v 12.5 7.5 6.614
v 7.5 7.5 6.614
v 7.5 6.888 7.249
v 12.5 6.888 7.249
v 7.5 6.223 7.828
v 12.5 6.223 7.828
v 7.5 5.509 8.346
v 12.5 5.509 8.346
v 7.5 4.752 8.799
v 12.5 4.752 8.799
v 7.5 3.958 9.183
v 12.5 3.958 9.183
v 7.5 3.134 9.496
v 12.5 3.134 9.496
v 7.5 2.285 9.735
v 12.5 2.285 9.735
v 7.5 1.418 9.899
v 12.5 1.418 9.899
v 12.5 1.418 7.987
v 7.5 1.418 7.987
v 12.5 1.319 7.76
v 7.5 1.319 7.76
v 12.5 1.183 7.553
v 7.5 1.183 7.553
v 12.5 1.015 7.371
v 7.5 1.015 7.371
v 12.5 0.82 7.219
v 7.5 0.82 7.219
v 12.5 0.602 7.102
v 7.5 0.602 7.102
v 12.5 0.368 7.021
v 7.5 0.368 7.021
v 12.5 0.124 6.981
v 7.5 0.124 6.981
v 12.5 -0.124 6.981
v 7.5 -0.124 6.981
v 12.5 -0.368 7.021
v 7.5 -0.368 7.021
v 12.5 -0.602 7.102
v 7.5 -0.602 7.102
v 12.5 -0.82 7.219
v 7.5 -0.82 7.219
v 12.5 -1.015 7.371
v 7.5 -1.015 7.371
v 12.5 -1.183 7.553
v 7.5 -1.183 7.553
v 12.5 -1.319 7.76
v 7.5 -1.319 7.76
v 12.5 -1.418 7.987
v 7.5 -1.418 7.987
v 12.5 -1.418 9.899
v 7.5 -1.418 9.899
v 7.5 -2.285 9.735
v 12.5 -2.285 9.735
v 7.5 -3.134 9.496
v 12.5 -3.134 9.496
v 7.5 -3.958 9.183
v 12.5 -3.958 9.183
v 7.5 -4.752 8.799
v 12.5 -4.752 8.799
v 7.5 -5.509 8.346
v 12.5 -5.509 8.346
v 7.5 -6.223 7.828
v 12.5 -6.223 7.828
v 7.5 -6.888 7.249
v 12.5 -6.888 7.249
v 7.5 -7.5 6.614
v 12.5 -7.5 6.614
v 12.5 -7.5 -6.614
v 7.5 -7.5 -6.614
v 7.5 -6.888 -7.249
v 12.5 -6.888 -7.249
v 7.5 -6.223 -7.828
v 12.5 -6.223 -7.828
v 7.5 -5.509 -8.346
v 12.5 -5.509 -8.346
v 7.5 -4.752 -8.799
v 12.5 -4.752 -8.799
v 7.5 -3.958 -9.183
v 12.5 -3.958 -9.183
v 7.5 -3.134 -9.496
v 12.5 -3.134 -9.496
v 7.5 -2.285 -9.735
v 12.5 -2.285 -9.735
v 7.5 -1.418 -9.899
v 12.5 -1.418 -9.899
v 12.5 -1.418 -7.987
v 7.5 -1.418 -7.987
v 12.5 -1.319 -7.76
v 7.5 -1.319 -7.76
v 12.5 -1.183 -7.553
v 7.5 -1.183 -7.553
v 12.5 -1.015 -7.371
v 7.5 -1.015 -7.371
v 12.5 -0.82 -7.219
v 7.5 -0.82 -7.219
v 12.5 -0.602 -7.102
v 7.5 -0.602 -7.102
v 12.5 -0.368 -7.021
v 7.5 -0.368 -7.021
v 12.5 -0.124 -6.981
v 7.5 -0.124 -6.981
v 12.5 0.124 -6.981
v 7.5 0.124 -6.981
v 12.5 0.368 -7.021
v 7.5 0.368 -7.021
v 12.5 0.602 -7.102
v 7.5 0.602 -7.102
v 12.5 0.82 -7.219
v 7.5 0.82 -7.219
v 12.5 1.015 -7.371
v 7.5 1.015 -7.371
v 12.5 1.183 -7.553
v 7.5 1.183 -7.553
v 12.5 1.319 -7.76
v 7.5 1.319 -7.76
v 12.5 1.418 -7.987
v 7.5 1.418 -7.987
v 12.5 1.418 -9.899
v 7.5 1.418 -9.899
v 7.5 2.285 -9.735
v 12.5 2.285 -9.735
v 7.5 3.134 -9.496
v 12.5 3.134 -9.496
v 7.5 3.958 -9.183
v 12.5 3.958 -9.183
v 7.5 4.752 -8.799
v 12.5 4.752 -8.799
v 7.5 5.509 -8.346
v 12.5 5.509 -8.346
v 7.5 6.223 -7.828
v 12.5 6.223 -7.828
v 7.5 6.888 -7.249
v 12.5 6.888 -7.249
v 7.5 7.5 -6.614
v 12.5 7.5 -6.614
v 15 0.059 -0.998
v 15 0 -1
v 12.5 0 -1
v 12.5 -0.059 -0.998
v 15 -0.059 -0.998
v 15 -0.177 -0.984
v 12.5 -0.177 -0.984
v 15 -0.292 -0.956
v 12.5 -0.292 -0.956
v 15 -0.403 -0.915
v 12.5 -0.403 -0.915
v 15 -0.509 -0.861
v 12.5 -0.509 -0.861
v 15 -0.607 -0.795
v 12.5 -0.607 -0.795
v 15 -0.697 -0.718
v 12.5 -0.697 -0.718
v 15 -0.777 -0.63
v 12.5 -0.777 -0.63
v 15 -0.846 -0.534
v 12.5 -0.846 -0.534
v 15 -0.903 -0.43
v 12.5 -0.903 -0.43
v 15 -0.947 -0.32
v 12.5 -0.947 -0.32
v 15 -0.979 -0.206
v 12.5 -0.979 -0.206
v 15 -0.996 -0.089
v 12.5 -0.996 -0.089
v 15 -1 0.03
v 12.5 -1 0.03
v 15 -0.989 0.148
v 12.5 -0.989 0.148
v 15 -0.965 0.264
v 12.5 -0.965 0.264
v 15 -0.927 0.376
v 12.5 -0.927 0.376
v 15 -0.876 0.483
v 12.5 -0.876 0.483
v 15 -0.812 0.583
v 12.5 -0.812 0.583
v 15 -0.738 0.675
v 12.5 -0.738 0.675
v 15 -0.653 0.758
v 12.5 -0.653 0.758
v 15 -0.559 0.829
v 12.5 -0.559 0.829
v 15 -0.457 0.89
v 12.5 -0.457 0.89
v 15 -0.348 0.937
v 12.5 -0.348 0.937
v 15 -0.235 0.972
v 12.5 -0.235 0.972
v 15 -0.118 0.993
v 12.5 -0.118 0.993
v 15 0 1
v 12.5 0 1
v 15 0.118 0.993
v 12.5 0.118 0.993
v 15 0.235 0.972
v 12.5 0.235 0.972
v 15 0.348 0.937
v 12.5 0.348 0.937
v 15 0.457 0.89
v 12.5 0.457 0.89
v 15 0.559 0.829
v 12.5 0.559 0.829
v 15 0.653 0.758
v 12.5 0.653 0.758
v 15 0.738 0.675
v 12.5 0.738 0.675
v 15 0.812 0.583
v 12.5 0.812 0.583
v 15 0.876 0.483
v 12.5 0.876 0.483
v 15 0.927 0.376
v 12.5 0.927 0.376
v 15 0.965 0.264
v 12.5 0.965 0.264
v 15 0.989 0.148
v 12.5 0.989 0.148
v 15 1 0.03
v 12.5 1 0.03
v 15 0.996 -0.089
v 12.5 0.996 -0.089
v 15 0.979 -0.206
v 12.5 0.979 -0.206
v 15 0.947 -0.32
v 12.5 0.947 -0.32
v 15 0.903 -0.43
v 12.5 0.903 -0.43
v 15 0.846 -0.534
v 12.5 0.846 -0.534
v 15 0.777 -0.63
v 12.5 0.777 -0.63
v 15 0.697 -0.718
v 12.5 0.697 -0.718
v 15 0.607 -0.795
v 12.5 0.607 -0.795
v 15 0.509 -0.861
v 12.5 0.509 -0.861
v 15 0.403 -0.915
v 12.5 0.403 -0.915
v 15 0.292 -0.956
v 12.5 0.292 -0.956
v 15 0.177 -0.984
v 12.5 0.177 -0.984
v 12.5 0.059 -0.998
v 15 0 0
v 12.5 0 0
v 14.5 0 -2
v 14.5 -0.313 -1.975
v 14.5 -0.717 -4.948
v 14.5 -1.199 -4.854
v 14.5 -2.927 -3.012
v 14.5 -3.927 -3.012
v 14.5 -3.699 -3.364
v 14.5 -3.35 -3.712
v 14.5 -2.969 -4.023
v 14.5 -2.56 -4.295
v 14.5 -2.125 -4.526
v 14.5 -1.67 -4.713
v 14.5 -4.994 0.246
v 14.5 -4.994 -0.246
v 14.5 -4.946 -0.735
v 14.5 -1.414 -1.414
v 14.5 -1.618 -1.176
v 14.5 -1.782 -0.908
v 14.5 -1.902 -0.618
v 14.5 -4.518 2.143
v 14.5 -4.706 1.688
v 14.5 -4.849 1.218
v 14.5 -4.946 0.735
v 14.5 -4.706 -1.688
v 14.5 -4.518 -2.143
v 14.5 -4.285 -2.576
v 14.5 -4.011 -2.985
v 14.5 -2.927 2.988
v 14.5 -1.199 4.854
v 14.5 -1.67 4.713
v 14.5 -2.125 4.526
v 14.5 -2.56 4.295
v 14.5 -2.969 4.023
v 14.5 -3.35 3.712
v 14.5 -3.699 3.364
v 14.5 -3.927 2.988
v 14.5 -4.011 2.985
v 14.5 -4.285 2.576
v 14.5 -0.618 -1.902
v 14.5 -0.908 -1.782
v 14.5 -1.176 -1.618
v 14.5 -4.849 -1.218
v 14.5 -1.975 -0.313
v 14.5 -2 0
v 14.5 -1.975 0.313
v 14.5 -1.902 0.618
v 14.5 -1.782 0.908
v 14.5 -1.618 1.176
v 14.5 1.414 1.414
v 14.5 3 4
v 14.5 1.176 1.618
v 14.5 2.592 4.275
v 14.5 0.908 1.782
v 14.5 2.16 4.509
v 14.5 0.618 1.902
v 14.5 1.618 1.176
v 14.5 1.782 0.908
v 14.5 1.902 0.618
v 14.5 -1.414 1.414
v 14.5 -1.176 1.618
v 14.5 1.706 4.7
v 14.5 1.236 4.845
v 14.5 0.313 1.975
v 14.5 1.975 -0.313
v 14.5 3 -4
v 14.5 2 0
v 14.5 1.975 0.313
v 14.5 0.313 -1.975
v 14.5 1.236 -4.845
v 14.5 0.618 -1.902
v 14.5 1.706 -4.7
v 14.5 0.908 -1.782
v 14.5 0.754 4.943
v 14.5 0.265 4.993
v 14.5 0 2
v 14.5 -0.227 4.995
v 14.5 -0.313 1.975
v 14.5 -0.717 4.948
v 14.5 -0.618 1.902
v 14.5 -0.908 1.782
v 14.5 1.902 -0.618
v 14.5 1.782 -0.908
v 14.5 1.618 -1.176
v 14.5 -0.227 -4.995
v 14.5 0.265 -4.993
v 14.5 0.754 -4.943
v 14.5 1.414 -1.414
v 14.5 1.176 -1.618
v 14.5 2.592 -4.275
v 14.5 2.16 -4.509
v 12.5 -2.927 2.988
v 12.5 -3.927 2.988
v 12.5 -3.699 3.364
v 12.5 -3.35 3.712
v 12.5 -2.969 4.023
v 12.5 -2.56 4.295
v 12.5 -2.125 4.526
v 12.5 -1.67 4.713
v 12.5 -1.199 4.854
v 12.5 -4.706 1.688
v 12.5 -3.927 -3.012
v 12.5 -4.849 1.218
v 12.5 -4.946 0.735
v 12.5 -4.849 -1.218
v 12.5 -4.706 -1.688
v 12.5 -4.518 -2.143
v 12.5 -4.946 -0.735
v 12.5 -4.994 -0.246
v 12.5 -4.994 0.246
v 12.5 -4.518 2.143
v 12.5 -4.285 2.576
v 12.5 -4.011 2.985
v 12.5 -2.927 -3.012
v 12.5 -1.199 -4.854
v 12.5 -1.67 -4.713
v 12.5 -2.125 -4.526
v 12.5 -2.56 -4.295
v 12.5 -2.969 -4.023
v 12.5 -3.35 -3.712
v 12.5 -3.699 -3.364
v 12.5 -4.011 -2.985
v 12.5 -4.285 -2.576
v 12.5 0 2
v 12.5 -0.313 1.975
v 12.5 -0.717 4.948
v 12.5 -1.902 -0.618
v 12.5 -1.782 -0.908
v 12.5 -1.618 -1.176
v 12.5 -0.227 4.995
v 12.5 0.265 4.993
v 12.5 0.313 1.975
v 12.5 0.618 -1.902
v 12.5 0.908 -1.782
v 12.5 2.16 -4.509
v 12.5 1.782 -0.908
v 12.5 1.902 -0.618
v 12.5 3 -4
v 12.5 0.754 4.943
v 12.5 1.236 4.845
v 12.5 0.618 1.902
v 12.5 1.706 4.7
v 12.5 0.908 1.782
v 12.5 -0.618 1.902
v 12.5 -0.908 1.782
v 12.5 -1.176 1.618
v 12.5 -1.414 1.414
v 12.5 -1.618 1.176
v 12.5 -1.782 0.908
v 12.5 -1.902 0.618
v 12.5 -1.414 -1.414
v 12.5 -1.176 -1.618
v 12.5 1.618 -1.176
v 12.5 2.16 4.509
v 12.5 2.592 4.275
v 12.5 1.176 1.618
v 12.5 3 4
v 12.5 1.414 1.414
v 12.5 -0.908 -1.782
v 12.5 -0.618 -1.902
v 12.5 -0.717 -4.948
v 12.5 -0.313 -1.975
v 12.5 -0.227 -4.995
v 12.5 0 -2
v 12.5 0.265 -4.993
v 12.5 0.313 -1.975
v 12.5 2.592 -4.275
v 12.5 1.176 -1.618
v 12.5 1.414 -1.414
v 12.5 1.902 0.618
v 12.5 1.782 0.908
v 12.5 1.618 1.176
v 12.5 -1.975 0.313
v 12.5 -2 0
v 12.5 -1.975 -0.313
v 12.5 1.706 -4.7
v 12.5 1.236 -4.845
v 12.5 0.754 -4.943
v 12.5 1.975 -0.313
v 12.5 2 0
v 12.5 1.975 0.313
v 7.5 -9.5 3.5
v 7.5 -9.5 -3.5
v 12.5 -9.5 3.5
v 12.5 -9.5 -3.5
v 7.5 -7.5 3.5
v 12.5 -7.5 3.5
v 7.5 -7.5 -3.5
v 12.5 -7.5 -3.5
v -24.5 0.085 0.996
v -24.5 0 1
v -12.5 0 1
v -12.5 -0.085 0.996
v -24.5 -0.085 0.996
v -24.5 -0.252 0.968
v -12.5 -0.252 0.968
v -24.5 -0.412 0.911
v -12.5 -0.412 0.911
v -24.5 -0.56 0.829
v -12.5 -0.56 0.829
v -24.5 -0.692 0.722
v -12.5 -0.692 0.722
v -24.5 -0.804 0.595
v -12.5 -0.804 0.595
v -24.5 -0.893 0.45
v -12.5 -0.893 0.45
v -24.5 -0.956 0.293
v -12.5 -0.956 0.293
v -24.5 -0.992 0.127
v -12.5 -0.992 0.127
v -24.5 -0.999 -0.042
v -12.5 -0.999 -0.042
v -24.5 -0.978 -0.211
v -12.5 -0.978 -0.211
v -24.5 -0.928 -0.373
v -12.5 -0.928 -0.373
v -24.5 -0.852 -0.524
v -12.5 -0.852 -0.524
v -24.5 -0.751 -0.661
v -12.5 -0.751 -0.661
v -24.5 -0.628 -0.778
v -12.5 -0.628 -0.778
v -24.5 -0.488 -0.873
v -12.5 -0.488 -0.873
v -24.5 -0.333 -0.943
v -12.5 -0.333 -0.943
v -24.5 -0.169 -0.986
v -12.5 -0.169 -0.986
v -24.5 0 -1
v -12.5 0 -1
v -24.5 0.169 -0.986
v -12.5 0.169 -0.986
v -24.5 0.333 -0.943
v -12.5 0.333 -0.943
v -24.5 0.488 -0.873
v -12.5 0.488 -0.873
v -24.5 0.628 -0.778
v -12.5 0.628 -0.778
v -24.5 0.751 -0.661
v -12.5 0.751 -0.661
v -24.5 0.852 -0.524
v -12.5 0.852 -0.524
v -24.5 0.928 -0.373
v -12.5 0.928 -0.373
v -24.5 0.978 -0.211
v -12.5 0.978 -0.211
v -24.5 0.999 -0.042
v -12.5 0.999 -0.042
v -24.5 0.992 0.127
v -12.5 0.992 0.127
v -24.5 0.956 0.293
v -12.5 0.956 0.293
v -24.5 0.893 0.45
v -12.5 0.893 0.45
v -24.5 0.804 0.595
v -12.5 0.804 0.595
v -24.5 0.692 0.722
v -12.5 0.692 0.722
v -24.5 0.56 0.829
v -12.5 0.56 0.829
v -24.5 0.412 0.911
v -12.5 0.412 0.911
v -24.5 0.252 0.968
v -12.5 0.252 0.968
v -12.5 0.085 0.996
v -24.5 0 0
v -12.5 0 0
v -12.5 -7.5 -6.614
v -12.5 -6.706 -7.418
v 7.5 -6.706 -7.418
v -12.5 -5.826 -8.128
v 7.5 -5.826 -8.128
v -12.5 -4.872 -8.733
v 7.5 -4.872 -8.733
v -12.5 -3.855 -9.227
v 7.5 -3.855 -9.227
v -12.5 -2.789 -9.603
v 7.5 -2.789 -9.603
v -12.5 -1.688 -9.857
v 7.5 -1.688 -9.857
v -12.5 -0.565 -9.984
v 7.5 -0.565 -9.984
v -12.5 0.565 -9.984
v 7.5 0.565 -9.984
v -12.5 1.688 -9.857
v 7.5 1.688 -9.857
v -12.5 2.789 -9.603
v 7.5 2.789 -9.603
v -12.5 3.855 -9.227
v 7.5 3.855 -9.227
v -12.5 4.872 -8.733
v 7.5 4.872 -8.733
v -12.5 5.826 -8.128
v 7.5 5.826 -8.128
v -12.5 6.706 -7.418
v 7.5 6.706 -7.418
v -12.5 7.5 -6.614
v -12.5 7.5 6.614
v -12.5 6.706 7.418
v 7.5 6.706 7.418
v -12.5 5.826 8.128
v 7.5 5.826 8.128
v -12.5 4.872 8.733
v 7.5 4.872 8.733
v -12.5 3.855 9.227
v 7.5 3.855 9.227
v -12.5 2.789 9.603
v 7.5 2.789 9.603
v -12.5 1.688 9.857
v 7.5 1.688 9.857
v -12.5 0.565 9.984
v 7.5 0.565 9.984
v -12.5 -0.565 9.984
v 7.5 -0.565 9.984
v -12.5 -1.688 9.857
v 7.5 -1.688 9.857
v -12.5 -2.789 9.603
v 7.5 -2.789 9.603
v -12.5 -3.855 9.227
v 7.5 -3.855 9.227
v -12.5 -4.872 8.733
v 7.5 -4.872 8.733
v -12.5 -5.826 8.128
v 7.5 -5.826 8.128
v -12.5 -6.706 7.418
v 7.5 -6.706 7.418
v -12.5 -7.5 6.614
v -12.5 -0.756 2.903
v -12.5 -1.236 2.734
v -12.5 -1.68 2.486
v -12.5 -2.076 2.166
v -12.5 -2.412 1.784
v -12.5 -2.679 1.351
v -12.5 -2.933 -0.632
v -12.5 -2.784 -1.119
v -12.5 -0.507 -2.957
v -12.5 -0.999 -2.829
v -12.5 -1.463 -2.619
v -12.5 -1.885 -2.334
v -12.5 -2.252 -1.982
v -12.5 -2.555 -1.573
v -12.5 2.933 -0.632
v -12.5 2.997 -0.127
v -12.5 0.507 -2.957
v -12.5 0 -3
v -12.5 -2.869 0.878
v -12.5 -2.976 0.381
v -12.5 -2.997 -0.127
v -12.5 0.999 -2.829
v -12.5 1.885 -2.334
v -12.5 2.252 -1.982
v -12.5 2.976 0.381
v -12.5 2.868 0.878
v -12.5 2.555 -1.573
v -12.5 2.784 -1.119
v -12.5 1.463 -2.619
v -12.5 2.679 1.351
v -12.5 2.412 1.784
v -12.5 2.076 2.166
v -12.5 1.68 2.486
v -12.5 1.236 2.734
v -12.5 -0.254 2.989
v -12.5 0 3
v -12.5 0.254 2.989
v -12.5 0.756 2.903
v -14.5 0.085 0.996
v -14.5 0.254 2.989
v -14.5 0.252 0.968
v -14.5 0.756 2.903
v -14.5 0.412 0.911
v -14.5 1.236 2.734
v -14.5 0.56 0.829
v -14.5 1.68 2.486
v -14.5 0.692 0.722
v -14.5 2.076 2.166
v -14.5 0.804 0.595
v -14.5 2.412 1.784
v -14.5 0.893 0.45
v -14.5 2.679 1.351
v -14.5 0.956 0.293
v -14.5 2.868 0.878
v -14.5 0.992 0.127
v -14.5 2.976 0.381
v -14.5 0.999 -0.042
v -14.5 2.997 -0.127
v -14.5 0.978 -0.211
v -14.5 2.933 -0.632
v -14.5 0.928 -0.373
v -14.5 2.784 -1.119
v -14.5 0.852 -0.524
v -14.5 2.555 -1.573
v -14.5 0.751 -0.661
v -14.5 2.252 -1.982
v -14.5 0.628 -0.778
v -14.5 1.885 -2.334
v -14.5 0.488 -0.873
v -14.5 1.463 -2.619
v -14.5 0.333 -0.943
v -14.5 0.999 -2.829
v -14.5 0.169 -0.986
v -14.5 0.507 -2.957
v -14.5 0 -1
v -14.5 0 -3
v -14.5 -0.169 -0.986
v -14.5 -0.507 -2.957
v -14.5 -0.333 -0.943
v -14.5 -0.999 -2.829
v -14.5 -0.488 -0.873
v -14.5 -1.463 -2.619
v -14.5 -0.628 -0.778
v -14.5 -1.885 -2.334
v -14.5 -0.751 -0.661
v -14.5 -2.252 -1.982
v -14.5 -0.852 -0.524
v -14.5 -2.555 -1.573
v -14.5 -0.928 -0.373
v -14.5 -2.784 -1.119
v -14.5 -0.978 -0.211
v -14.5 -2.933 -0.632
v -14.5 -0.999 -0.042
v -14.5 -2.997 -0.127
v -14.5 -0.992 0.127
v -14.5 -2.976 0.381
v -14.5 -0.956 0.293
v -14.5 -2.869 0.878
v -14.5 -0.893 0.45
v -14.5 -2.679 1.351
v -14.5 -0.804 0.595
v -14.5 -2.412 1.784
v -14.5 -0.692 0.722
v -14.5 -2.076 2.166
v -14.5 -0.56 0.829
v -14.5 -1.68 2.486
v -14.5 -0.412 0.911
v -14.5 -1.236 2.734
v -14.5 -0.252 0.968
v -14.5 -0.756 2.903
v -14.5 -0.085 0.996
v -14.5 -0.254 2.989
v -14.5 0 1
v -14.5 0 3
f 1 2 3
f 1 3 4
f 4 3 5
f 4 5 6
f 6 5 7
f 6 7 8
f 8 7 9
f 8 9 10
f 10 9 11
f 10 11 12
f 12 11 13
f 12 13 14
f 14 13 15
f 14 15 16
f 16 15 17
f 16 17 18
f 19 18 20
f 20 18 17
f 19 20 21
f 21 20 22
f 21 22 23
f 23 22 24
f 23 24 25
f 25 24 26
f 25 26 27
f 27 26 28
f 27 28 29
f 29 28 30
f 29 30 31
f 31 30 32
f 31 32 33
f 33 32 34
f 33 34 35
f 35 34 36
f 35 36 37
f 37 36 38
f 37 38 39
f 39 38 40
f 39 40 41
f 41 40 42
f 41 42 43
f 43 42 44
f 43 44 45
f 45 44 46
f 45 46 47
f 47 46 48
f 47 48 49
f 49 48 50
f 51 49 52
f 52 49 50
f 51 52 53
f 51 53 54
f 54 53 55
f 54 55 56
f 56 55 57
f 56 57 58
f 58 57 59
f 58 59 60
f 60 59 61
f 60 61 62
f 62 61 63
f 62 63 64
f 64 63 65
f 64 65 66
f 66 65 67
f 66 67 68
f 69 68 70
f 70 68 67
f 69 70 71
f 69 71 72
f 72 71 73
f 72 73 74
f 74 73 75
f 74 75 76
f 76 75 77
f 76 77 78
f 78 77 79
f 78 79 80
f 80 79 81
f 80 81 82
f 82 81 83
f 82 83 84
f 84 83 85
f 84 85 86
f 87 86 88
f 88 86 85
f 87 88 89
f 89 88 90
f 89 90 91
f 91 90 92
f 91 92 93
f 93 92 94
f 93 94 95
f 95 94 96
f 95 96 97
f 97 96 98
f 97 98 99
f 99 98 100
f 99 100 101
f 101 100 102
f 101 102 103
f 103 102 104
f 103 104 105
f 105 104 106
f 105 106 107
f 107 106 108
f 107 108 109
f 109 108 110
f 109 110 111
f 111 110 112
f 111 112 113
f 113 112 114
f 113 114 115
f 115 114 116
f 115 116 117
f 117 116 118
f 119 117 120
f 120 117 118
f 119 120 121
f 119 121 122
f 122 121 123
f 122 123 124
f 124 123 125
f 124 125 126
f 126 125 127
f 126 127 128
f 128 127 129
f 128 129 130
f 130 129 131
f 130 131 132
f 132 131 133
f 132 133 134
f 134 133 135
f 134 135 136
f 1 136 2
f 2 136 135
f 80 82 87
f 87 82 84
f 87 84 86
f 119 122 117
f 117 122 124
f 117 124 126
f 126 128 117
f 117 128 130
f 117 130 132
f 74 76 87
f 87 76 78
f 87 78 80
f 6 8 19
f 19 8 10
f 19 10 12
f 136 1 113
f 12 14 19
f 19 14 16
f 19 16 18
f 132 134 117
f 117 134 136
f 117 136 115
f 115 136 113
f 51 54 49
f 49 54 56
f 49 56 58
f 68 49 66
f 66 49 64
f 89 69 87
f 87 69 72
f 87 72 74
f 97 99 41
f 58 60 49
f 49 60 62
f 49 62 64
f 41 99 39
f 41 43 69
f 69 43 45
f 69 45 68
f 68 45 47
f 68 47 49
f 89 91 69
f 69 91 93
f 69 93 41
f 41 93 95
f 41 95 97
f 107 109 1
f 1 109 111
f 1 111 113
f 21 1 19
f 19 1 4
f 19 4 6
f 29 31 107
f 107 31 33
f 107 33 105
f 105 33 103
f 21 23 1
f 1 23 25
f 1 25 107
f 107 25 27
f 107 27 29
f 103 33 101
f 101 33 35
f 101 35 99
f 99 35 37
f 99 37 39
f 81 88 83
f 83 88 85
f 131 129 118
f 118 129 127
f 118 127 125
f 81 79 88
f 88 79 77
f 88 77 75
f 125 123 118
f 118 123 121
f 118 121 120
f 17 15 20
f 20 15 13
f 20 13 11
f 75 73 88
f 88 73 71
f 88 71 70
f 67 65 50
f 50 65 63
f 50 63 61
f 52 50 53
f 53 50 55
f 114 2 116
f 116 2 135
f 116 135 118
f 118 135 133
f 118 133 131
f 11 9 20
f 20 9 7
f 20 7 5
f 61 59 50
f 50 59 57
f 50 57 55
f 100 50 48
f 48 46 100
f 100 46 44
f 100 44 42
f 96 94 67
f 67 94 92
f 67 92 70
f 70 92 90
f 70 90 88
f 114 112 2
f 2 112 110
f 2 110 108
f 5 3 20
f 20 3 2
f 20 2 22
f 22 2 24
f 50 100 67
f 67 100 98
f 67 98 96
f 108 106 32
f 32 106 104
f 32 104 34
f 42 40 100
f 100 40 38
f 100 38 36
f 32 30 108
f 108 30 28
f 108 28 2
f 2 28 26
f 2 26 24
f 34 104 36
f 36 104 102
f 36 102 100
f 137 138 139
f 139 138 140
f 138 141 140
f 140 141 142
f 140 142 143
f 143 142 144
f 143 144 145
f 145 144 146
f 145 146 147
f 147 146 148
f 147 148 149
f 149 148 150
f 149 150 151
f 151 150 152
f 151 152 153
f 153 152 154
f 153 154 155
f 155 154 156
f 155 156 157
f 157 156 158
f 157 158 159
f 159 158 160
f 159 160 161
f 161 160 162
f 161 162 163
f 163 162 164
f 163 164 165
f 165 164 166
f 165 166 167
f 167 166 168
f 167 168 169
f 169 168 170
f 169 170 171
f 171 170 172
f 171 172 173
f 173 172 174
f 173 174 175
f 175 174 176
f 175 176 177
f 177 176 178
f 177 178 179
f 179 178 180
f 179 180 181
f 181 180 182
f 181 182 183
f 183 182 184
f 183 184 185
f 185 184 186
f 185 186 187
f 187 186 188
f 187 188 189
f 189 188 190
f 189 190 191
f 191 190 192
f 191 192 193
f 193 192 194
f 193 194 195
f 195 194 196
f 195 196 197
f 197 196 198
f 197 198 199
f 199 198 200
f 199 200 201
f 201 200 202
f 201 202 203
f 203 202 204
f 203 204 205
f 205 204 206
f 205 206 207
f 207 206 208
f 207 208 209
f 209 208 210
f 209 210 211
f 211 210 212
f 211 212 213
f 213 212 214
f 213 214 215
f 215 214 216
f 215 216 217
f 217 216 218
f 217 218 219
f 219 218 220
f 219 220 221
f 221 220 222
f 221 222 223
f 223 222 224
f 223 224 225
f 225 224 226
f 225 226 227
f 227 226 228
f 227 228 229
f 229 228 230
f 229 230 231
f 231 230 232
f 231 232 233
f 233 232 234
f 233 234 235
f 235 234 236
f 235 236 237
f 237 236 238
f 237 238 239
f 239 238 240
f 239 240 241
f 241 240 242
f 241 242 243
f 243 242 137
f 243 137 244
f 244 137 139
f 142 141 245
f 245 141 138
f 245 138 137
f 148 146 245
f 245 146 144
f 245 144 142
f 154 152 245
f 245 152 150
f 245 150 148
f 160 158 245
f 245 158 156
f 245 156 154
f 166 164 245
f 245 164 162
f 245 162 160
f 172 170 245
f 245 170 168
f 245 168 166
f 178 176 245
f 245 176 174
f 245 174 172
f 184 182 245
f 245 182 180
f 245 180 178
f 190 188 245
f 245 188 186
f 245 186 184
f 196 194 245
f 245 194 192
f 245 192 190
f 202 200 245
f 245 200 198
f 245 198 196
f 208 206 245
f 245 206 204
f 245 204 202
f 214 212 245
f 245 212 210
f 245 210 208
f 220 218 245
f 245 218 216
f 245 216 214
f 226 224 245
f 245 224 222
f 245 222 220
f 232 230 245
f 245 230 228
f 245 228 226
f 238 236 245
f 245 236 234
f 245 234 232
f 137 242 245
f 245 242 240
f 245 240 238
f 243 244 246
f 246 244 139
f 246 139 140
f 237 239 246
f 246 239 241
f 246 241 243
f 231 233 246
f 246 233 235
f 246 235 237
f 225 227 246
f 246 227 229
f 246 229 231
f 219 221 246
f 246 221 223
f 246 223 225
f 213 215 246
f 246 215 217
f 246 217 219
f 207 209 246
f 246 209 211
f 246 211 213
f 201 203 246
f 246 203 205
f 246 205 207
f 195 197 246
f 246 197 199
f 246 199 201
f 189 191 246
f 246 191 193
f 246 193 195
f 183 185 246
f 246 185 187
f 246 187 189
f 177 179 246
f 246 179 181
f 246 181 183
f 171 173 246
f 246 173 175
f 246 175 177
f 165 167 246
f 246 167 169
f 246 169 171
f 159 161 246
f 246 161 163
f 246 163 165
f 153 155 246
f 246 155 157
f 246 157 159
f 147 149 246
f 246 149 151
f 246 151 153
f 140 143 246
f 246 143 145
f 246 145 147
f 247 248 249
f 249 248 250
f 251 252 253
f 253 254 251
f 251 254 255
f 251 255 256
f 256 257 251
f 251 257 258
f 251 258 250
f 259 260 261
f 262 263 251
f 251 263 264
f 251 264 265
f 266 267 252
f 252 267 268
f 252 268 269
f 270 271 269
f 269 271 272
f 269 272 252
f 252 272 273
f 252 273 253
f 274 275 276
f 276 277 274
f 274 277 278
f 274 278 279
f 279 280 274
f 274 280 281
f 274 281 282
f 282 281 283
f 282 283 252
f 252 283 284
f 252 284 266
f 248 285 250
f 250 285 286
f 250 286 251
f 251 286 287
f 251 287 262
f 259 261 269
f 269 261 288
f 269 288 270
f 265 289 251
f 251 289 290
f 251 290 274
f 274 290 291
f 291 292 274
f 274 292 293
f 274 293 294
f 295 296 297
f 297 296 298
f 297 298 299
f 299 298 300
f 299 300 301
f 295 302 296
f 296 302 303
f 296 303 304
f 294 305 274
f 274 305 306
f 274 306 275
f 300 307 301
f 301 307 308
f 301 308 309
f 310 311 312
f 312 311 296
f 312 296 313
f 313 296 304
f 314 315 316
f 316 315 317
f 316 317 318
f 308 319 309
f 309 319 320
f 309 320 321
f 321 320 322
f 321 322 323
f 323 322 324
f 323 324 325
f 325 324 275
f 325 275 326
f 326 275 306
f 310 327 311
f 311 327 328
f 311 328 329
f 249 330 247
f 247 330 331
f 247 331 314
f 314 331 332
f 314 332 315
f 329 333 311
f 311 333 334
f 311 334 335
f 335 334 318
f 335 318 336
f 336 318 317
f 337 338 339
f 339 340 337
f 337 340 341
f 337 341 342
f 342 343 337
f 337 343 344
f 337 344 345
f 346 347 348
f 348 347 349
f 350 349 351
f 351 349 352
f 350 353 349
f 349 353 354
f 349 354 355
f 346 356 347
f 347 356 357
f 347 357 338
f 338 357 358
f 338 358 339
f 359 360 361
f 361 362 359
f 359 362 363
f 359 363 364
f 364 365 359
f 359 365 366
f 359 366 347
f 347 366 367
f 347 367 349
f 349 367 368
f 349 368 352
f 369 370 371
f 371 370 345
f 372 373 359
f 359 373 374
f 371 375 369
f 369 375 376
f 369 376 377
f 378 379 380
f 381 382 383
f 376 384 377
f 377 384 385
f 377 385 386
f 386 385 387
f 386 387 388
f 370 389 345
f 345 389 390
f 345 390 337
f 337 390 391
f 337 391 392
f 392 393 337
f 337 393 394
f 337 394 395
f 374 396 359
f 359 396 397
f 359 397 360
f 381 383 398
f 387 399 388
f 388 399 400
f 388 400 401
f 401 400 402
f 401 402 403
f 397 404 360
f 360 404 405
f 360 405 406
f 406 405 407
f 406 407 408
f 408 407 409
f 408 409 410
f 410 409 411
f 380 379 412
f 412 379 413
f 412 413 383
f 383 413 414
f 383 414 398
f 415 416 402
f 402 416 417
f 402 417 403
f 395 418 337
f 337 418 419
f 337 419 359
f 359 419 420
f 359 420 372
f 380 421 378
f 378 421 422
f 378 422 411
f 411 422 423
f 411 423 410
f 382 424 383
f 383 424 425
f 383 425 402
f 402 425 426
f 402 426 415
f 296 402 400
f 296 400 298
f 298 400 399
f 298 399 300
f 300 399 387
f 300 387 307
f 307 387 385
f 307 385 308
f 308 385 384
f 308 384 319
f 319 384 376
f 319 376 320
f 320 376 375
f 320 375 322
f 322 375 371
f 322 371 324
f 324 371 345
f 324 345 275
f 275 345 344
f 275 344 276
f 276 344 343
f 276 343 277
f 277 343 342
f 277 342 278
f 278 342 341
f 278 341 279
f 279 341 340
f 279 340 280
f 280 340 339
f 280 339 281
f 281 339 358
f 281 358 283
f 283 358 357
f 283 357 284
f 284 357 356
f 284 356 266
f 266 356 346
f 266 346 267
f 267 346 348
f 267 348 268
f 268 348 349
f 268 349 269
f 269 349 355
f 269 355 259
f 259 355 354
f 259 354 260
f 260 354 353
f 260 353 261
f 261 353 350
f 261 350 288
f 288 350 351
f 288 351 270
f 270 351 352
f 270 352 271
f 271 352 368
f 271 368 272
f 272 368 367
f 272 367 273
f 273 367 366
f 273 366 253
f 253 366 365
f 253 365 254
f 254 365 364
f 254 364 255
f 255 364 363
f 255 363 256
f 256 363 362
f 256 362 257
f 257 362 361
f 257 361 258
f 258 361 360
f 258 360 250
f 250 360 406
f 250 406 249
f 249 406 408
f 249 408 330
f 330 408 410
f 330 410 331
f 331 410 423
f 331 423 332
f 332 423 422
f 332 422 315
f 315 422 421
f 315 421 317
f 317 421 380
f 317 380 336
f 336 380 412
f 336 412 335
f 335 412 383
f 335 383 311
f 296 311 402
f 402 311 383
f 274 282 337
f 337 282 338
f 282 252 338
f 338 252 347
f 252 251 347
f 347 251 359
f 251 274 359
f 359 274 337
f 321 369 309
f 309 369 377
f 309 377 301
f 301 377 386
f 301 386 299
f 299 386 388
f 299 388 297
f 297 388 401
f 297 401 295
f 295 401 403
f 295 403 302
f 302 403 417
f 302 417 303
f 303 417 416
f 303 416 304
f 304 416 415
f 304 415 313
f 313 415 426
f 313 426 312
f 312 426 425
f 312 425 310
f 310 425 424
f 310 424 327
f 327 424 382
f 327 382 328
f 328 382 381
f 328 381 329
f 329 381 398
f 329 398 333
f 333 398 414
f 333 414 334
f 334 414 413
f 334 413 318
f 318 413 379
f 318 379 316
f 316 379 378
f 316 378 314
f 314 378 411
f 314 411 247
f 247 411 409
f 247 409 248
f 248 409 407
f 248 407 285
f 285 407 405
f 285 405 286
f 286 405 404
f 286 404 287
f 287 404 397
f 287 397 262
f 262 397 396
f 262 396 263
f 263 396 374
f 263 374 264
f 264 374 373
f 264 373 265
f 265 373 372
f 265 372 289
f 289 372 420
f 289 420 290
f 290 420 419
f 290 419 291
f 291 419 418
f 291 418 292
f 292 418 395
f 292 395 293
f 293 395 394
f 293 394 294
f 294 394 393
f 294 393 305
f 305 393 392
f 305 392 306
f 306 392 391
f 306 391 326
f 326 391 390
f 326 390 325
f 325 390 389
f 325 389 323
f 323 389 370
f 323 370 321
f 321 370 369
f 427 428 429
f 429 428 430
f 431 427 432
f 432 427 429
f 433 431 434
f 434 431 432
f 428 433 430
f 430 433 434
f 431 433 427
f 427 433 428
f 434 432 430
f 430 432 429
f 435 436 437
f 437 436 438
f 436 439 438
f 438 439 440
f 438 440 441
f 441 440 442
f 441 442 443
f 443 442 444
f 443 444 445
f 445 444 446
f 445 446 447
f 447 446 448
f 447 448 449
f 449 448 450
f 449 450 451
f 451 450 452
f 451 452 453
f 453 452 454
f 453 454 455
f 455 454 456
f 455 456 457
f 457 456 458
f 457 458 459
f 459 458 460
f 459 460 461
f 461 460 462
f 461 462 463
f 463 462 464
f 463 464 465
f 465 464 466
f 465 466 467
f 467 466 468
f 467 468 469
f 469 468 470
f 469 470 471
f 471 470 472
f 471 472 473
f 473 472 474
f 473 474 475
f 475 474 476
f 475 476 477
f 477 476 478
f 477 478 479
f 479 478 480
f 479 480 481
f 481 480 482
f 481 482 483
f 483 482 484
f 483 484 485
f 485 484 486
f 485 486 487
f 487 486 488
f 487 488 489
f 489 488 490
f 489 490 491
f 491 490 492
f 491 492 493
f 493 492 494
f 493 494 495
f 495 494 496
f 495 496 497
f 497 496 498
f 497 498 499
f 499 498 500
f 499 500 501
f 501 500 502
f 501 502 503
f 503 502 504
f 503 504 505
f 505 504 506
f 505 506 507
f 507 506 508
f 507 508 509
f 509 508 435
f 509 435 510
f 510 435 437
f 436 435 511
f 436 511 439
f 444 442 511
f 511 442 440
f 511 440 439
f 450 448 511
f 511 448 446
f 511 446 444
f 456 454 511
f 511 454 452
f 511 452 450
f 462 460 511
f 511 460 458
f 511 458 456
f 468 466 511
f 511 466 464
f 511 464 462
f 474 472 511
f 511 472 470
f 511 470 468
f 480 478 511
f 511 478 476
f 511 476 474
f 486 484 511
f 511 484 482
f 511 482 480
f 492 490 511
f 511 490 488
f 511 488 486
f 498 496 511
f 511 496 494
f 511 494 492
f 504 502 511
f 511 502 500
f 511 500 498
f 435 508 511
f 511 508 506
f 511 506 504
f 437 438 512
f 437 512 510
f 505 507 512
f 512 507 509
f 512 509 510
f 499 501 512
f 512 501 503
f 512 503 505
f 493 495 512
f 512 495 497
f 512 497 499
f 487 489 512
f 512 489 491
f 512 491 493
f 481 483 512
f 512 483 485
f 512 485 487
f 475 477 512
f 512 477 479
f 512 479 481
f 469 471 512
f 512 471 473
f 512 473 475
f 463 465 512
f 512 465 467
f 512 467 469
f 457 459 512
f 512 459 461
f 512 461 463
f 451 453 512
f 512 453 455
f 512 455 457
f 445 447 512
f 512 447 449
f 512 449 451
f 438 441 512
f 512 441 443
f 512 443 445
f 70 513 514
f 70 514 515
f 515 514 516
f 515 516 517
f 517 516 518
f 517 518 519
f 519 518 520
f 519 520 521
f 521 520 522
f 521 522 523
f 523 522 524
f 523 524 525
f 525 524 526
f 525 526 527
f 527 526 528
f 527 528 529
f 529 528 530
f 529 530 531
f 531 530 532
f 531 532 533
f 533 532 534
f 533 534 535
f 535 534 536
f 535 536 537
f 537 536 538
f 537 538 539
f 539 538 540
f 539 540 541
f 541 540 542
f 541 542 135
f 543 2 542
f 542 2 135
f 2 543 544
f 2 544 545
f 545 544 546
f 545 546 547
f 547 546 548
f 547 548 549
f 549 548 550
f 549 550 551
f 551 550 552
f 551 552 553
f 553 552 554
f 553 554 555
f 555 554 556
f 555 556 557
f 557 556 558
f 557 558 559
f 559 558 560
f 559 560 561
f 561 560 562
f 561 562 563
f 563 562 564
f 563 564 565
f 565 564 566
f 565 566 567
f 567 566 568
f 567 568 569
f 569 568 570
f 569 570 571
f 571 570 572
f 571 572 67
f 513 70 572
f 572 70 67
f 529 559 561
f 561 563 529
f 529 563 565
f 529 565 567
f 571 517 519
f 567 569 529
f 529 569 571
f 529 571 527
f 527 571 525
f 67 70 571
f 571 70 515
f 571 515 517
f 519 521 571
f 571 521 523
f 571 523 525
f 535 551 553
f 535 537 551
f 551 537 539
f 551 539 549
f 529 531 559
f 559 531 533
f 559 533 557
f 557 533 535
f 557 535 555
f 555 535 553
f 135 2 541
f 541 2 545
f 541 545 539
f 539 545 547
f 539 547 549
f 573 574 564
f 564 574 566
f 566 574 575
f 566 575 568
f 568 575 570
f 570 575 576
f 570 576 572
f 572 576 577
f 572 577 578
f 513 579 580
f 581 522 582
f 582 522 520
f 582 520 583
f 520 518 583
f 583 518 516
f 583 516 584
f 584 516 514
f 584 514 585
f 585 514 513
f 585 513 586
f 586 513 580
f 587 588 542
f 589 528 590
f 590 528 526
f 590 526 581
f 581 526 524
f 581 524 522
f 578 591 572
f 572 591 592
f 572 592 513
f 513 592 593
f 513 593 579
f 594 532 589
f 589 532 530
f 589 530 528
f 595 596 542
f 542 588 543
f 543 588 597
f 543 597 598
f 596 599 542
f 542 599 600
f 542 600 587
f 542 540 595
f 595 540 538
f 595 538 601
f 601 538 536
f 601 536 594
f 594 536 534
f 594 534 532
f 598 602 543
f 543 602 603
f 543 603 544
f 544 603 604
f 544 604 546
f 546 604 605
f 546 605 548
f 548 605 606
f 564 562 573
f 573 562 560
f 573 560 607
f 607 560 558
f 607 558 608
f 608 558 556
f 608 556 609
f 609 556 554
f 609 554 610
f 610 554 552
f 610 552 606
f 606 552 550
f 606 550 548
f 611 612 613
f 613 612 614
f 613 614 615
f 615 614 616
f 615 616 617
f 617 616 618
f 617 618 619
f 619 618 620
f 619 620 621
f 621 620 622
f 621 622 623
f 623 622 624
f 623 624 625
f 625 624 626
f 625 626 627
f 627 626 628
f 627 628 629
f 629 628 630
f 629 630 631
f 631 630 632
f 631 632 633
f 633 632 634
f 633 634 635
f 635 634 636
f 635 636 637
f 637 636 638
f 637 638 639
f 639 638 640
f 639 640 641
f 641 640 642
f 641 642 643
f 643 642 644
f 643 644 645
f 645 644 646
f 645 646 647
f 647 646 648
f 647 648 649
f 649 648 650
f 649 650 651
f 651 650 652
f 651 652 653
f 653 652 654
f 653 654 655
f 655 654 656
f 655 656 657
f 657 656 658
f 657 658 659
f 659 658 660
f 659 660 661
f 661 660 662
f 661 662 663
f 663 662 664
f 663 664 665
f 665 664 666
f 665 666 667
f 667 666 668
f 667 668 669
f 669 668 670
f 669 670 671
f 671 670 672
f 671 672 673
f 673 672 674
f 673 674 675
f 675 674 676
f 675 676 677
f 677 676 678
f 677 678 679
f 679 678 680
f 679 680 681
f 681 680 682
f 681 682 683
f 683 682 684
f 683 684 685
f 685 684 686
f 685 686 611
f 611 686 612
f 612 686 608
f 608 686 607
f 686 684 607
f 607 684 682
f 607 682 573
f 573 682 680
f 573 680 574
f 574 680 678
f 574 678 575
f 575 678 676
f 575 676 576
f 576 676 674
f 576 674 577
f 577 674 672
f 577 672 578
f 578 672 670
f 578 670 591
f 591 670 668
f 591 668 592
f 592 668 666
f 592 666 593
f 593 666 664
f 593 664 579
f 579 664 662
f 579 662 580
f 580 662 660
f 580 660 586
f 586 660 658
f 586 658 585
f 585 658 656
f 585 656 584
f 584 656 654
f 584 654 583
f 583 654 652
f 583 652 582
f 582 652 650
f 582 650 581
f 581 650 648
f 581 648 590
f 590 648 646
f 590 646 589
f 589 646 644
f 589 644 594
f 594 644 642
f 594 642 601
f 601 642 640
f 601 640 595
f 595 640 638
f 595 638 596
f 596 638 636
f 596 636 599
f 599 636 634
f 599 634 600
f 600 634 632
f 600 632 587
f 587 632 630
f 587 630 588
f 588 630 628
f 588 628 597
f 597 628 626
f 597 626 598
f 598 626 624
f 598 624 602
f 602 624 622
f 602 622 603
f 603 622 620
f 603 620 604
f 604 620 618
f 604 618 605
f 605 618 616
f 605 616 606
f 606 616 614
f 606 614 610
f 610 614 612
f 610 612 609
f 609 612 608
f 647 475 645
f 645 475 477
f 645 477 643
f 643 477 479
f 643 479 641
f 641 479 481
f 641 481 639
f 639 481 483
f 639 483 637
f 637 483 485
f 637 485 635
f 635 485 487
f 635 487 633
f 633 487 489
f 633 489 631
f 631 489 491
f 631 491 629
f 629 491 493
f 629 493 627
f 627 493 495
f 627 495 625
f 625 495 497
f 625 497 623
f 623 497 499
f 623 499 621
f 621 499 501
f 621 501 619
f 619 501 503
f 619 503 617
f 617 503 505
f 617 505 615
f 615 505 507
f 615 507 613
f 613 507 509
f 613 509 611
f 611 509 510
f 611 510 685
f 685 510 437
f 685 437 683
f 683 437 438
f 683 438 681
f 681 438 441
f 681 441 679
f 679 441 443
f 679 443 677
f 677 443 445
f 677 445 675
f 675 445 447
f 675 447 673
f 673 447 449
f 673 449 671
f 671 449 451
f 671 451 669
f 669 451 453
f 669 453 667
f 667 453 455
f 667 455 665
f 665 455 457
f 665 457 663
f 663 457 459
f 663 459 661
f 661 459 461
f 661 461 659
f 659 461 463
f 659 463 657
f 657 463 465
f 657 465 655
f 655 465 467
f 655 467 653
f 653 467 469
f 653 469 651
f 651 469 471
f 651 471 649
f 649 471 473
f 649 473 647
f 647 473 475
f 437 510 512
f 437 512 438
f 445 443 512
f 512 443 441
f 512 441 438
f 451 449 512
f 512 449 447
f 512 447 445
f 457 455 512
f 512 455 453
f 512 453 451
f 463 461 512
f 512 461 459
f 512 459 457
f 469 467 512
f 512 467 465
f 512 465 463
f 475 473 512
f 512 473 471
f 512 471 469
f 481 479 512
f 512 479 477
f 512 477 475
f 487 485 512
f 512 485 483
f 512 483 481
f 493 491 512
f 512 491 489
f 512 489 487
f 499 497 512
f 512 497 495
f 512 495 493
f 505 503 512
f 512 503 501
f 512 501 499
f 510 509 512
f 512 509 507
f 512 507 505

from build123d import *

# Parameters (mm, degrees)
BOSS_EXTRUDE1_DEPTH      = 7.5
BOSS_EXTRUDE1_DEPTH_BACK = 12.5
BOSS_EXTRUDE2_DEPTH      = 5
SKETCH3_R                = 1
BOSS_EXTRUDE3_DEPTH      = 2.5
SKETCH3_6_W              = 6
SKETCH3_6_H              = 1
SKETCH3_6_R              = 2
BOSS_EXTRUDE6_DEPTH      = 2
SKETCH3_7_W              = 7
SKETCH3_7_H              = 2
BOSS_EXTRUDE7_DEPTH      = 5
SKETCH4_R                = 1
BOSS_EXTRUDE9_DEPTH      = 12
SKETCH4_3_R              = 3
SKETCH4_3_R_2            = 1
BOSS_EXTRUDE10_DEPTH     = 2


with BuildPart() as part:
    # Sketch1 → Boss-Extrude1 (new, two sides: drawn at the far end of the back side and taken through both)
    with BuildSketch(Plane(origin=(0, 0, 0), x_dir=(0, 0, -1), z_dir=(1, 0, 0)).offset(-BOSS_EXTRUDE1_DEPTH_BACK)):
        with BuildLine():
            Line((-6.614378278, -7.5), (6.614378278, -7.5))
            ThreePointArc((6.614378278, -7.5), (10, 0), (6.614378278, 7.5))
            Line((6.614378278, 7.5), (-6.614378278, 7.5))
            ThreePointArc((-6.614378278, 7.5), (-10, 0), (-6.614378278, -7.5))
        make_face()
    extrude(amount=BOSS_EXTRUDE1_DEPTH + BOSS_EXTRUDE1_DEPTH_BACK)

    # Sketch4<3> → Boss-Extrude10 (add)
    with BuildSketch(Plane.ZY.offset(12.5)):
        Circle(SKETCH4_3_R)
        Circle(SKETCH4_3_R_2, mode=Mode.SUBTRACT)
    extrude(amount=BOSS_EXTRUDE10_DEPTH)


with BuildPart() as body_2:
    # Sketch2 → Boss-Extrude2 (new body)
    with BuildSketch(Plane(origin=(7.5, 0, 0), x_dir=(0, 0, -1), z_dir=(1, 0, 0))):
        with BuildLine():
            Line((-6.614378278, 7.5), (6.614378278, 7.5))
            ThreePointArc((6.614378278, 7.5), (8.798827688, 4.751908176), (9.898924717, 1.418199367))
            Line((9.898924717, 1.418199367), (7.986999742, 1.418199367))
            ThreePointArc((7.986999742, 1.418199367), (6.975579885, 0), (7.986999742, -1.418199367))
            Line((7.986999742, -1.418199367), (9.898924717, -1.418199367))
            ThreePointArc((9.898924717, -1.418199367), (8.798827688, -4.751908176), (6.614378278, -7.5))
            Line((6.614378278, -7.5), (-6.614378278, -7.5))
            ThreePointArc((-6.614378278, -7.5), (-8.798827688, -4.751908176), (-9.898924717, -1.418199367))
            Line((-9.898924717, -1.418199367), (-7.986999742, -1.418199367))
            ThreePointArc((-7.986999742, -1.418199367), (-6.975579885, 0), (-7.986999742, 1.418199367))
            Line((-7.986999742, 1.418199367), (-9.898924717, 1.418199367))
            ThreePointArc((-9.898924717, 1.418199367), (-8.798827688, 4.751908176), (-6.614378278, 7.5))
        make_face()
    extrude(amount=BOSS_EXTRUDE2_DEPTH)


with BuildPart() as body_3:
    # Sketch3 → Boss-Extrude3 (new body)
    with BuildSketch(Plane(origin=(12.5, 0, 0), x_dir=(0, 0, -1), z_dir=(1, 0, 0))):
        Circle(SKETCH3_R)
    extrude(amount=BOSS_EXTRUDE3_DEPTH)


with BuildPart() as body_4:
    # Sketch3<6> → Boss-Extrude6 (new body)
    with BuildSketch(Plane(origin=(12.5, 0, 0), x_dir=(0, 0, -1), z_dir=(1, 0, 0))):
        with BuildLine():
            Line((4, 3), (-4, 3))
            ThreePointArc((-4, 3), (0, -5), (4, 3))
        make_face()
        with Locations((0.012157956, -3.427042932)):
            Rectangle(SKETCH3_6_W, SKETCH3_6_H, mode=Mode.SUBTRACT)
        Circle(SKETCH3_6_R, mode=Mode.SUBTRACT)
    extrude(amount=BOSS_EXTRUDE6_DEPTH)


with BuildPart() as body_5:
    # Sketch3<7> → Boss-Extrude7 (new body)
    with BuildSketch(Plane(origin=(12.5, 0, 0), x_dir=(0, 0, -1), z_dir=(1, 0, 0))):
        with Locations((0, -8.5)):
            Rectangle(SKETCH3_7_W, SKETCH3_7_H)
    extrude(amount=-BOSS_EXTRUDE7_DEPTH)


with BuildPart() as body_6:
    # Sketch4 → Boss-Extrude9 (new body)
    with BuildSketch(Plane.ZY.offset(12.5)):
        Circle(SKETCH4_R)
    extrude(amount=BOSS_EXTRUDE9_DEPTH)


solid = Compound([part.part, body_2.part, body_3.part, body_4.part, body_5.part, body_6.part])
